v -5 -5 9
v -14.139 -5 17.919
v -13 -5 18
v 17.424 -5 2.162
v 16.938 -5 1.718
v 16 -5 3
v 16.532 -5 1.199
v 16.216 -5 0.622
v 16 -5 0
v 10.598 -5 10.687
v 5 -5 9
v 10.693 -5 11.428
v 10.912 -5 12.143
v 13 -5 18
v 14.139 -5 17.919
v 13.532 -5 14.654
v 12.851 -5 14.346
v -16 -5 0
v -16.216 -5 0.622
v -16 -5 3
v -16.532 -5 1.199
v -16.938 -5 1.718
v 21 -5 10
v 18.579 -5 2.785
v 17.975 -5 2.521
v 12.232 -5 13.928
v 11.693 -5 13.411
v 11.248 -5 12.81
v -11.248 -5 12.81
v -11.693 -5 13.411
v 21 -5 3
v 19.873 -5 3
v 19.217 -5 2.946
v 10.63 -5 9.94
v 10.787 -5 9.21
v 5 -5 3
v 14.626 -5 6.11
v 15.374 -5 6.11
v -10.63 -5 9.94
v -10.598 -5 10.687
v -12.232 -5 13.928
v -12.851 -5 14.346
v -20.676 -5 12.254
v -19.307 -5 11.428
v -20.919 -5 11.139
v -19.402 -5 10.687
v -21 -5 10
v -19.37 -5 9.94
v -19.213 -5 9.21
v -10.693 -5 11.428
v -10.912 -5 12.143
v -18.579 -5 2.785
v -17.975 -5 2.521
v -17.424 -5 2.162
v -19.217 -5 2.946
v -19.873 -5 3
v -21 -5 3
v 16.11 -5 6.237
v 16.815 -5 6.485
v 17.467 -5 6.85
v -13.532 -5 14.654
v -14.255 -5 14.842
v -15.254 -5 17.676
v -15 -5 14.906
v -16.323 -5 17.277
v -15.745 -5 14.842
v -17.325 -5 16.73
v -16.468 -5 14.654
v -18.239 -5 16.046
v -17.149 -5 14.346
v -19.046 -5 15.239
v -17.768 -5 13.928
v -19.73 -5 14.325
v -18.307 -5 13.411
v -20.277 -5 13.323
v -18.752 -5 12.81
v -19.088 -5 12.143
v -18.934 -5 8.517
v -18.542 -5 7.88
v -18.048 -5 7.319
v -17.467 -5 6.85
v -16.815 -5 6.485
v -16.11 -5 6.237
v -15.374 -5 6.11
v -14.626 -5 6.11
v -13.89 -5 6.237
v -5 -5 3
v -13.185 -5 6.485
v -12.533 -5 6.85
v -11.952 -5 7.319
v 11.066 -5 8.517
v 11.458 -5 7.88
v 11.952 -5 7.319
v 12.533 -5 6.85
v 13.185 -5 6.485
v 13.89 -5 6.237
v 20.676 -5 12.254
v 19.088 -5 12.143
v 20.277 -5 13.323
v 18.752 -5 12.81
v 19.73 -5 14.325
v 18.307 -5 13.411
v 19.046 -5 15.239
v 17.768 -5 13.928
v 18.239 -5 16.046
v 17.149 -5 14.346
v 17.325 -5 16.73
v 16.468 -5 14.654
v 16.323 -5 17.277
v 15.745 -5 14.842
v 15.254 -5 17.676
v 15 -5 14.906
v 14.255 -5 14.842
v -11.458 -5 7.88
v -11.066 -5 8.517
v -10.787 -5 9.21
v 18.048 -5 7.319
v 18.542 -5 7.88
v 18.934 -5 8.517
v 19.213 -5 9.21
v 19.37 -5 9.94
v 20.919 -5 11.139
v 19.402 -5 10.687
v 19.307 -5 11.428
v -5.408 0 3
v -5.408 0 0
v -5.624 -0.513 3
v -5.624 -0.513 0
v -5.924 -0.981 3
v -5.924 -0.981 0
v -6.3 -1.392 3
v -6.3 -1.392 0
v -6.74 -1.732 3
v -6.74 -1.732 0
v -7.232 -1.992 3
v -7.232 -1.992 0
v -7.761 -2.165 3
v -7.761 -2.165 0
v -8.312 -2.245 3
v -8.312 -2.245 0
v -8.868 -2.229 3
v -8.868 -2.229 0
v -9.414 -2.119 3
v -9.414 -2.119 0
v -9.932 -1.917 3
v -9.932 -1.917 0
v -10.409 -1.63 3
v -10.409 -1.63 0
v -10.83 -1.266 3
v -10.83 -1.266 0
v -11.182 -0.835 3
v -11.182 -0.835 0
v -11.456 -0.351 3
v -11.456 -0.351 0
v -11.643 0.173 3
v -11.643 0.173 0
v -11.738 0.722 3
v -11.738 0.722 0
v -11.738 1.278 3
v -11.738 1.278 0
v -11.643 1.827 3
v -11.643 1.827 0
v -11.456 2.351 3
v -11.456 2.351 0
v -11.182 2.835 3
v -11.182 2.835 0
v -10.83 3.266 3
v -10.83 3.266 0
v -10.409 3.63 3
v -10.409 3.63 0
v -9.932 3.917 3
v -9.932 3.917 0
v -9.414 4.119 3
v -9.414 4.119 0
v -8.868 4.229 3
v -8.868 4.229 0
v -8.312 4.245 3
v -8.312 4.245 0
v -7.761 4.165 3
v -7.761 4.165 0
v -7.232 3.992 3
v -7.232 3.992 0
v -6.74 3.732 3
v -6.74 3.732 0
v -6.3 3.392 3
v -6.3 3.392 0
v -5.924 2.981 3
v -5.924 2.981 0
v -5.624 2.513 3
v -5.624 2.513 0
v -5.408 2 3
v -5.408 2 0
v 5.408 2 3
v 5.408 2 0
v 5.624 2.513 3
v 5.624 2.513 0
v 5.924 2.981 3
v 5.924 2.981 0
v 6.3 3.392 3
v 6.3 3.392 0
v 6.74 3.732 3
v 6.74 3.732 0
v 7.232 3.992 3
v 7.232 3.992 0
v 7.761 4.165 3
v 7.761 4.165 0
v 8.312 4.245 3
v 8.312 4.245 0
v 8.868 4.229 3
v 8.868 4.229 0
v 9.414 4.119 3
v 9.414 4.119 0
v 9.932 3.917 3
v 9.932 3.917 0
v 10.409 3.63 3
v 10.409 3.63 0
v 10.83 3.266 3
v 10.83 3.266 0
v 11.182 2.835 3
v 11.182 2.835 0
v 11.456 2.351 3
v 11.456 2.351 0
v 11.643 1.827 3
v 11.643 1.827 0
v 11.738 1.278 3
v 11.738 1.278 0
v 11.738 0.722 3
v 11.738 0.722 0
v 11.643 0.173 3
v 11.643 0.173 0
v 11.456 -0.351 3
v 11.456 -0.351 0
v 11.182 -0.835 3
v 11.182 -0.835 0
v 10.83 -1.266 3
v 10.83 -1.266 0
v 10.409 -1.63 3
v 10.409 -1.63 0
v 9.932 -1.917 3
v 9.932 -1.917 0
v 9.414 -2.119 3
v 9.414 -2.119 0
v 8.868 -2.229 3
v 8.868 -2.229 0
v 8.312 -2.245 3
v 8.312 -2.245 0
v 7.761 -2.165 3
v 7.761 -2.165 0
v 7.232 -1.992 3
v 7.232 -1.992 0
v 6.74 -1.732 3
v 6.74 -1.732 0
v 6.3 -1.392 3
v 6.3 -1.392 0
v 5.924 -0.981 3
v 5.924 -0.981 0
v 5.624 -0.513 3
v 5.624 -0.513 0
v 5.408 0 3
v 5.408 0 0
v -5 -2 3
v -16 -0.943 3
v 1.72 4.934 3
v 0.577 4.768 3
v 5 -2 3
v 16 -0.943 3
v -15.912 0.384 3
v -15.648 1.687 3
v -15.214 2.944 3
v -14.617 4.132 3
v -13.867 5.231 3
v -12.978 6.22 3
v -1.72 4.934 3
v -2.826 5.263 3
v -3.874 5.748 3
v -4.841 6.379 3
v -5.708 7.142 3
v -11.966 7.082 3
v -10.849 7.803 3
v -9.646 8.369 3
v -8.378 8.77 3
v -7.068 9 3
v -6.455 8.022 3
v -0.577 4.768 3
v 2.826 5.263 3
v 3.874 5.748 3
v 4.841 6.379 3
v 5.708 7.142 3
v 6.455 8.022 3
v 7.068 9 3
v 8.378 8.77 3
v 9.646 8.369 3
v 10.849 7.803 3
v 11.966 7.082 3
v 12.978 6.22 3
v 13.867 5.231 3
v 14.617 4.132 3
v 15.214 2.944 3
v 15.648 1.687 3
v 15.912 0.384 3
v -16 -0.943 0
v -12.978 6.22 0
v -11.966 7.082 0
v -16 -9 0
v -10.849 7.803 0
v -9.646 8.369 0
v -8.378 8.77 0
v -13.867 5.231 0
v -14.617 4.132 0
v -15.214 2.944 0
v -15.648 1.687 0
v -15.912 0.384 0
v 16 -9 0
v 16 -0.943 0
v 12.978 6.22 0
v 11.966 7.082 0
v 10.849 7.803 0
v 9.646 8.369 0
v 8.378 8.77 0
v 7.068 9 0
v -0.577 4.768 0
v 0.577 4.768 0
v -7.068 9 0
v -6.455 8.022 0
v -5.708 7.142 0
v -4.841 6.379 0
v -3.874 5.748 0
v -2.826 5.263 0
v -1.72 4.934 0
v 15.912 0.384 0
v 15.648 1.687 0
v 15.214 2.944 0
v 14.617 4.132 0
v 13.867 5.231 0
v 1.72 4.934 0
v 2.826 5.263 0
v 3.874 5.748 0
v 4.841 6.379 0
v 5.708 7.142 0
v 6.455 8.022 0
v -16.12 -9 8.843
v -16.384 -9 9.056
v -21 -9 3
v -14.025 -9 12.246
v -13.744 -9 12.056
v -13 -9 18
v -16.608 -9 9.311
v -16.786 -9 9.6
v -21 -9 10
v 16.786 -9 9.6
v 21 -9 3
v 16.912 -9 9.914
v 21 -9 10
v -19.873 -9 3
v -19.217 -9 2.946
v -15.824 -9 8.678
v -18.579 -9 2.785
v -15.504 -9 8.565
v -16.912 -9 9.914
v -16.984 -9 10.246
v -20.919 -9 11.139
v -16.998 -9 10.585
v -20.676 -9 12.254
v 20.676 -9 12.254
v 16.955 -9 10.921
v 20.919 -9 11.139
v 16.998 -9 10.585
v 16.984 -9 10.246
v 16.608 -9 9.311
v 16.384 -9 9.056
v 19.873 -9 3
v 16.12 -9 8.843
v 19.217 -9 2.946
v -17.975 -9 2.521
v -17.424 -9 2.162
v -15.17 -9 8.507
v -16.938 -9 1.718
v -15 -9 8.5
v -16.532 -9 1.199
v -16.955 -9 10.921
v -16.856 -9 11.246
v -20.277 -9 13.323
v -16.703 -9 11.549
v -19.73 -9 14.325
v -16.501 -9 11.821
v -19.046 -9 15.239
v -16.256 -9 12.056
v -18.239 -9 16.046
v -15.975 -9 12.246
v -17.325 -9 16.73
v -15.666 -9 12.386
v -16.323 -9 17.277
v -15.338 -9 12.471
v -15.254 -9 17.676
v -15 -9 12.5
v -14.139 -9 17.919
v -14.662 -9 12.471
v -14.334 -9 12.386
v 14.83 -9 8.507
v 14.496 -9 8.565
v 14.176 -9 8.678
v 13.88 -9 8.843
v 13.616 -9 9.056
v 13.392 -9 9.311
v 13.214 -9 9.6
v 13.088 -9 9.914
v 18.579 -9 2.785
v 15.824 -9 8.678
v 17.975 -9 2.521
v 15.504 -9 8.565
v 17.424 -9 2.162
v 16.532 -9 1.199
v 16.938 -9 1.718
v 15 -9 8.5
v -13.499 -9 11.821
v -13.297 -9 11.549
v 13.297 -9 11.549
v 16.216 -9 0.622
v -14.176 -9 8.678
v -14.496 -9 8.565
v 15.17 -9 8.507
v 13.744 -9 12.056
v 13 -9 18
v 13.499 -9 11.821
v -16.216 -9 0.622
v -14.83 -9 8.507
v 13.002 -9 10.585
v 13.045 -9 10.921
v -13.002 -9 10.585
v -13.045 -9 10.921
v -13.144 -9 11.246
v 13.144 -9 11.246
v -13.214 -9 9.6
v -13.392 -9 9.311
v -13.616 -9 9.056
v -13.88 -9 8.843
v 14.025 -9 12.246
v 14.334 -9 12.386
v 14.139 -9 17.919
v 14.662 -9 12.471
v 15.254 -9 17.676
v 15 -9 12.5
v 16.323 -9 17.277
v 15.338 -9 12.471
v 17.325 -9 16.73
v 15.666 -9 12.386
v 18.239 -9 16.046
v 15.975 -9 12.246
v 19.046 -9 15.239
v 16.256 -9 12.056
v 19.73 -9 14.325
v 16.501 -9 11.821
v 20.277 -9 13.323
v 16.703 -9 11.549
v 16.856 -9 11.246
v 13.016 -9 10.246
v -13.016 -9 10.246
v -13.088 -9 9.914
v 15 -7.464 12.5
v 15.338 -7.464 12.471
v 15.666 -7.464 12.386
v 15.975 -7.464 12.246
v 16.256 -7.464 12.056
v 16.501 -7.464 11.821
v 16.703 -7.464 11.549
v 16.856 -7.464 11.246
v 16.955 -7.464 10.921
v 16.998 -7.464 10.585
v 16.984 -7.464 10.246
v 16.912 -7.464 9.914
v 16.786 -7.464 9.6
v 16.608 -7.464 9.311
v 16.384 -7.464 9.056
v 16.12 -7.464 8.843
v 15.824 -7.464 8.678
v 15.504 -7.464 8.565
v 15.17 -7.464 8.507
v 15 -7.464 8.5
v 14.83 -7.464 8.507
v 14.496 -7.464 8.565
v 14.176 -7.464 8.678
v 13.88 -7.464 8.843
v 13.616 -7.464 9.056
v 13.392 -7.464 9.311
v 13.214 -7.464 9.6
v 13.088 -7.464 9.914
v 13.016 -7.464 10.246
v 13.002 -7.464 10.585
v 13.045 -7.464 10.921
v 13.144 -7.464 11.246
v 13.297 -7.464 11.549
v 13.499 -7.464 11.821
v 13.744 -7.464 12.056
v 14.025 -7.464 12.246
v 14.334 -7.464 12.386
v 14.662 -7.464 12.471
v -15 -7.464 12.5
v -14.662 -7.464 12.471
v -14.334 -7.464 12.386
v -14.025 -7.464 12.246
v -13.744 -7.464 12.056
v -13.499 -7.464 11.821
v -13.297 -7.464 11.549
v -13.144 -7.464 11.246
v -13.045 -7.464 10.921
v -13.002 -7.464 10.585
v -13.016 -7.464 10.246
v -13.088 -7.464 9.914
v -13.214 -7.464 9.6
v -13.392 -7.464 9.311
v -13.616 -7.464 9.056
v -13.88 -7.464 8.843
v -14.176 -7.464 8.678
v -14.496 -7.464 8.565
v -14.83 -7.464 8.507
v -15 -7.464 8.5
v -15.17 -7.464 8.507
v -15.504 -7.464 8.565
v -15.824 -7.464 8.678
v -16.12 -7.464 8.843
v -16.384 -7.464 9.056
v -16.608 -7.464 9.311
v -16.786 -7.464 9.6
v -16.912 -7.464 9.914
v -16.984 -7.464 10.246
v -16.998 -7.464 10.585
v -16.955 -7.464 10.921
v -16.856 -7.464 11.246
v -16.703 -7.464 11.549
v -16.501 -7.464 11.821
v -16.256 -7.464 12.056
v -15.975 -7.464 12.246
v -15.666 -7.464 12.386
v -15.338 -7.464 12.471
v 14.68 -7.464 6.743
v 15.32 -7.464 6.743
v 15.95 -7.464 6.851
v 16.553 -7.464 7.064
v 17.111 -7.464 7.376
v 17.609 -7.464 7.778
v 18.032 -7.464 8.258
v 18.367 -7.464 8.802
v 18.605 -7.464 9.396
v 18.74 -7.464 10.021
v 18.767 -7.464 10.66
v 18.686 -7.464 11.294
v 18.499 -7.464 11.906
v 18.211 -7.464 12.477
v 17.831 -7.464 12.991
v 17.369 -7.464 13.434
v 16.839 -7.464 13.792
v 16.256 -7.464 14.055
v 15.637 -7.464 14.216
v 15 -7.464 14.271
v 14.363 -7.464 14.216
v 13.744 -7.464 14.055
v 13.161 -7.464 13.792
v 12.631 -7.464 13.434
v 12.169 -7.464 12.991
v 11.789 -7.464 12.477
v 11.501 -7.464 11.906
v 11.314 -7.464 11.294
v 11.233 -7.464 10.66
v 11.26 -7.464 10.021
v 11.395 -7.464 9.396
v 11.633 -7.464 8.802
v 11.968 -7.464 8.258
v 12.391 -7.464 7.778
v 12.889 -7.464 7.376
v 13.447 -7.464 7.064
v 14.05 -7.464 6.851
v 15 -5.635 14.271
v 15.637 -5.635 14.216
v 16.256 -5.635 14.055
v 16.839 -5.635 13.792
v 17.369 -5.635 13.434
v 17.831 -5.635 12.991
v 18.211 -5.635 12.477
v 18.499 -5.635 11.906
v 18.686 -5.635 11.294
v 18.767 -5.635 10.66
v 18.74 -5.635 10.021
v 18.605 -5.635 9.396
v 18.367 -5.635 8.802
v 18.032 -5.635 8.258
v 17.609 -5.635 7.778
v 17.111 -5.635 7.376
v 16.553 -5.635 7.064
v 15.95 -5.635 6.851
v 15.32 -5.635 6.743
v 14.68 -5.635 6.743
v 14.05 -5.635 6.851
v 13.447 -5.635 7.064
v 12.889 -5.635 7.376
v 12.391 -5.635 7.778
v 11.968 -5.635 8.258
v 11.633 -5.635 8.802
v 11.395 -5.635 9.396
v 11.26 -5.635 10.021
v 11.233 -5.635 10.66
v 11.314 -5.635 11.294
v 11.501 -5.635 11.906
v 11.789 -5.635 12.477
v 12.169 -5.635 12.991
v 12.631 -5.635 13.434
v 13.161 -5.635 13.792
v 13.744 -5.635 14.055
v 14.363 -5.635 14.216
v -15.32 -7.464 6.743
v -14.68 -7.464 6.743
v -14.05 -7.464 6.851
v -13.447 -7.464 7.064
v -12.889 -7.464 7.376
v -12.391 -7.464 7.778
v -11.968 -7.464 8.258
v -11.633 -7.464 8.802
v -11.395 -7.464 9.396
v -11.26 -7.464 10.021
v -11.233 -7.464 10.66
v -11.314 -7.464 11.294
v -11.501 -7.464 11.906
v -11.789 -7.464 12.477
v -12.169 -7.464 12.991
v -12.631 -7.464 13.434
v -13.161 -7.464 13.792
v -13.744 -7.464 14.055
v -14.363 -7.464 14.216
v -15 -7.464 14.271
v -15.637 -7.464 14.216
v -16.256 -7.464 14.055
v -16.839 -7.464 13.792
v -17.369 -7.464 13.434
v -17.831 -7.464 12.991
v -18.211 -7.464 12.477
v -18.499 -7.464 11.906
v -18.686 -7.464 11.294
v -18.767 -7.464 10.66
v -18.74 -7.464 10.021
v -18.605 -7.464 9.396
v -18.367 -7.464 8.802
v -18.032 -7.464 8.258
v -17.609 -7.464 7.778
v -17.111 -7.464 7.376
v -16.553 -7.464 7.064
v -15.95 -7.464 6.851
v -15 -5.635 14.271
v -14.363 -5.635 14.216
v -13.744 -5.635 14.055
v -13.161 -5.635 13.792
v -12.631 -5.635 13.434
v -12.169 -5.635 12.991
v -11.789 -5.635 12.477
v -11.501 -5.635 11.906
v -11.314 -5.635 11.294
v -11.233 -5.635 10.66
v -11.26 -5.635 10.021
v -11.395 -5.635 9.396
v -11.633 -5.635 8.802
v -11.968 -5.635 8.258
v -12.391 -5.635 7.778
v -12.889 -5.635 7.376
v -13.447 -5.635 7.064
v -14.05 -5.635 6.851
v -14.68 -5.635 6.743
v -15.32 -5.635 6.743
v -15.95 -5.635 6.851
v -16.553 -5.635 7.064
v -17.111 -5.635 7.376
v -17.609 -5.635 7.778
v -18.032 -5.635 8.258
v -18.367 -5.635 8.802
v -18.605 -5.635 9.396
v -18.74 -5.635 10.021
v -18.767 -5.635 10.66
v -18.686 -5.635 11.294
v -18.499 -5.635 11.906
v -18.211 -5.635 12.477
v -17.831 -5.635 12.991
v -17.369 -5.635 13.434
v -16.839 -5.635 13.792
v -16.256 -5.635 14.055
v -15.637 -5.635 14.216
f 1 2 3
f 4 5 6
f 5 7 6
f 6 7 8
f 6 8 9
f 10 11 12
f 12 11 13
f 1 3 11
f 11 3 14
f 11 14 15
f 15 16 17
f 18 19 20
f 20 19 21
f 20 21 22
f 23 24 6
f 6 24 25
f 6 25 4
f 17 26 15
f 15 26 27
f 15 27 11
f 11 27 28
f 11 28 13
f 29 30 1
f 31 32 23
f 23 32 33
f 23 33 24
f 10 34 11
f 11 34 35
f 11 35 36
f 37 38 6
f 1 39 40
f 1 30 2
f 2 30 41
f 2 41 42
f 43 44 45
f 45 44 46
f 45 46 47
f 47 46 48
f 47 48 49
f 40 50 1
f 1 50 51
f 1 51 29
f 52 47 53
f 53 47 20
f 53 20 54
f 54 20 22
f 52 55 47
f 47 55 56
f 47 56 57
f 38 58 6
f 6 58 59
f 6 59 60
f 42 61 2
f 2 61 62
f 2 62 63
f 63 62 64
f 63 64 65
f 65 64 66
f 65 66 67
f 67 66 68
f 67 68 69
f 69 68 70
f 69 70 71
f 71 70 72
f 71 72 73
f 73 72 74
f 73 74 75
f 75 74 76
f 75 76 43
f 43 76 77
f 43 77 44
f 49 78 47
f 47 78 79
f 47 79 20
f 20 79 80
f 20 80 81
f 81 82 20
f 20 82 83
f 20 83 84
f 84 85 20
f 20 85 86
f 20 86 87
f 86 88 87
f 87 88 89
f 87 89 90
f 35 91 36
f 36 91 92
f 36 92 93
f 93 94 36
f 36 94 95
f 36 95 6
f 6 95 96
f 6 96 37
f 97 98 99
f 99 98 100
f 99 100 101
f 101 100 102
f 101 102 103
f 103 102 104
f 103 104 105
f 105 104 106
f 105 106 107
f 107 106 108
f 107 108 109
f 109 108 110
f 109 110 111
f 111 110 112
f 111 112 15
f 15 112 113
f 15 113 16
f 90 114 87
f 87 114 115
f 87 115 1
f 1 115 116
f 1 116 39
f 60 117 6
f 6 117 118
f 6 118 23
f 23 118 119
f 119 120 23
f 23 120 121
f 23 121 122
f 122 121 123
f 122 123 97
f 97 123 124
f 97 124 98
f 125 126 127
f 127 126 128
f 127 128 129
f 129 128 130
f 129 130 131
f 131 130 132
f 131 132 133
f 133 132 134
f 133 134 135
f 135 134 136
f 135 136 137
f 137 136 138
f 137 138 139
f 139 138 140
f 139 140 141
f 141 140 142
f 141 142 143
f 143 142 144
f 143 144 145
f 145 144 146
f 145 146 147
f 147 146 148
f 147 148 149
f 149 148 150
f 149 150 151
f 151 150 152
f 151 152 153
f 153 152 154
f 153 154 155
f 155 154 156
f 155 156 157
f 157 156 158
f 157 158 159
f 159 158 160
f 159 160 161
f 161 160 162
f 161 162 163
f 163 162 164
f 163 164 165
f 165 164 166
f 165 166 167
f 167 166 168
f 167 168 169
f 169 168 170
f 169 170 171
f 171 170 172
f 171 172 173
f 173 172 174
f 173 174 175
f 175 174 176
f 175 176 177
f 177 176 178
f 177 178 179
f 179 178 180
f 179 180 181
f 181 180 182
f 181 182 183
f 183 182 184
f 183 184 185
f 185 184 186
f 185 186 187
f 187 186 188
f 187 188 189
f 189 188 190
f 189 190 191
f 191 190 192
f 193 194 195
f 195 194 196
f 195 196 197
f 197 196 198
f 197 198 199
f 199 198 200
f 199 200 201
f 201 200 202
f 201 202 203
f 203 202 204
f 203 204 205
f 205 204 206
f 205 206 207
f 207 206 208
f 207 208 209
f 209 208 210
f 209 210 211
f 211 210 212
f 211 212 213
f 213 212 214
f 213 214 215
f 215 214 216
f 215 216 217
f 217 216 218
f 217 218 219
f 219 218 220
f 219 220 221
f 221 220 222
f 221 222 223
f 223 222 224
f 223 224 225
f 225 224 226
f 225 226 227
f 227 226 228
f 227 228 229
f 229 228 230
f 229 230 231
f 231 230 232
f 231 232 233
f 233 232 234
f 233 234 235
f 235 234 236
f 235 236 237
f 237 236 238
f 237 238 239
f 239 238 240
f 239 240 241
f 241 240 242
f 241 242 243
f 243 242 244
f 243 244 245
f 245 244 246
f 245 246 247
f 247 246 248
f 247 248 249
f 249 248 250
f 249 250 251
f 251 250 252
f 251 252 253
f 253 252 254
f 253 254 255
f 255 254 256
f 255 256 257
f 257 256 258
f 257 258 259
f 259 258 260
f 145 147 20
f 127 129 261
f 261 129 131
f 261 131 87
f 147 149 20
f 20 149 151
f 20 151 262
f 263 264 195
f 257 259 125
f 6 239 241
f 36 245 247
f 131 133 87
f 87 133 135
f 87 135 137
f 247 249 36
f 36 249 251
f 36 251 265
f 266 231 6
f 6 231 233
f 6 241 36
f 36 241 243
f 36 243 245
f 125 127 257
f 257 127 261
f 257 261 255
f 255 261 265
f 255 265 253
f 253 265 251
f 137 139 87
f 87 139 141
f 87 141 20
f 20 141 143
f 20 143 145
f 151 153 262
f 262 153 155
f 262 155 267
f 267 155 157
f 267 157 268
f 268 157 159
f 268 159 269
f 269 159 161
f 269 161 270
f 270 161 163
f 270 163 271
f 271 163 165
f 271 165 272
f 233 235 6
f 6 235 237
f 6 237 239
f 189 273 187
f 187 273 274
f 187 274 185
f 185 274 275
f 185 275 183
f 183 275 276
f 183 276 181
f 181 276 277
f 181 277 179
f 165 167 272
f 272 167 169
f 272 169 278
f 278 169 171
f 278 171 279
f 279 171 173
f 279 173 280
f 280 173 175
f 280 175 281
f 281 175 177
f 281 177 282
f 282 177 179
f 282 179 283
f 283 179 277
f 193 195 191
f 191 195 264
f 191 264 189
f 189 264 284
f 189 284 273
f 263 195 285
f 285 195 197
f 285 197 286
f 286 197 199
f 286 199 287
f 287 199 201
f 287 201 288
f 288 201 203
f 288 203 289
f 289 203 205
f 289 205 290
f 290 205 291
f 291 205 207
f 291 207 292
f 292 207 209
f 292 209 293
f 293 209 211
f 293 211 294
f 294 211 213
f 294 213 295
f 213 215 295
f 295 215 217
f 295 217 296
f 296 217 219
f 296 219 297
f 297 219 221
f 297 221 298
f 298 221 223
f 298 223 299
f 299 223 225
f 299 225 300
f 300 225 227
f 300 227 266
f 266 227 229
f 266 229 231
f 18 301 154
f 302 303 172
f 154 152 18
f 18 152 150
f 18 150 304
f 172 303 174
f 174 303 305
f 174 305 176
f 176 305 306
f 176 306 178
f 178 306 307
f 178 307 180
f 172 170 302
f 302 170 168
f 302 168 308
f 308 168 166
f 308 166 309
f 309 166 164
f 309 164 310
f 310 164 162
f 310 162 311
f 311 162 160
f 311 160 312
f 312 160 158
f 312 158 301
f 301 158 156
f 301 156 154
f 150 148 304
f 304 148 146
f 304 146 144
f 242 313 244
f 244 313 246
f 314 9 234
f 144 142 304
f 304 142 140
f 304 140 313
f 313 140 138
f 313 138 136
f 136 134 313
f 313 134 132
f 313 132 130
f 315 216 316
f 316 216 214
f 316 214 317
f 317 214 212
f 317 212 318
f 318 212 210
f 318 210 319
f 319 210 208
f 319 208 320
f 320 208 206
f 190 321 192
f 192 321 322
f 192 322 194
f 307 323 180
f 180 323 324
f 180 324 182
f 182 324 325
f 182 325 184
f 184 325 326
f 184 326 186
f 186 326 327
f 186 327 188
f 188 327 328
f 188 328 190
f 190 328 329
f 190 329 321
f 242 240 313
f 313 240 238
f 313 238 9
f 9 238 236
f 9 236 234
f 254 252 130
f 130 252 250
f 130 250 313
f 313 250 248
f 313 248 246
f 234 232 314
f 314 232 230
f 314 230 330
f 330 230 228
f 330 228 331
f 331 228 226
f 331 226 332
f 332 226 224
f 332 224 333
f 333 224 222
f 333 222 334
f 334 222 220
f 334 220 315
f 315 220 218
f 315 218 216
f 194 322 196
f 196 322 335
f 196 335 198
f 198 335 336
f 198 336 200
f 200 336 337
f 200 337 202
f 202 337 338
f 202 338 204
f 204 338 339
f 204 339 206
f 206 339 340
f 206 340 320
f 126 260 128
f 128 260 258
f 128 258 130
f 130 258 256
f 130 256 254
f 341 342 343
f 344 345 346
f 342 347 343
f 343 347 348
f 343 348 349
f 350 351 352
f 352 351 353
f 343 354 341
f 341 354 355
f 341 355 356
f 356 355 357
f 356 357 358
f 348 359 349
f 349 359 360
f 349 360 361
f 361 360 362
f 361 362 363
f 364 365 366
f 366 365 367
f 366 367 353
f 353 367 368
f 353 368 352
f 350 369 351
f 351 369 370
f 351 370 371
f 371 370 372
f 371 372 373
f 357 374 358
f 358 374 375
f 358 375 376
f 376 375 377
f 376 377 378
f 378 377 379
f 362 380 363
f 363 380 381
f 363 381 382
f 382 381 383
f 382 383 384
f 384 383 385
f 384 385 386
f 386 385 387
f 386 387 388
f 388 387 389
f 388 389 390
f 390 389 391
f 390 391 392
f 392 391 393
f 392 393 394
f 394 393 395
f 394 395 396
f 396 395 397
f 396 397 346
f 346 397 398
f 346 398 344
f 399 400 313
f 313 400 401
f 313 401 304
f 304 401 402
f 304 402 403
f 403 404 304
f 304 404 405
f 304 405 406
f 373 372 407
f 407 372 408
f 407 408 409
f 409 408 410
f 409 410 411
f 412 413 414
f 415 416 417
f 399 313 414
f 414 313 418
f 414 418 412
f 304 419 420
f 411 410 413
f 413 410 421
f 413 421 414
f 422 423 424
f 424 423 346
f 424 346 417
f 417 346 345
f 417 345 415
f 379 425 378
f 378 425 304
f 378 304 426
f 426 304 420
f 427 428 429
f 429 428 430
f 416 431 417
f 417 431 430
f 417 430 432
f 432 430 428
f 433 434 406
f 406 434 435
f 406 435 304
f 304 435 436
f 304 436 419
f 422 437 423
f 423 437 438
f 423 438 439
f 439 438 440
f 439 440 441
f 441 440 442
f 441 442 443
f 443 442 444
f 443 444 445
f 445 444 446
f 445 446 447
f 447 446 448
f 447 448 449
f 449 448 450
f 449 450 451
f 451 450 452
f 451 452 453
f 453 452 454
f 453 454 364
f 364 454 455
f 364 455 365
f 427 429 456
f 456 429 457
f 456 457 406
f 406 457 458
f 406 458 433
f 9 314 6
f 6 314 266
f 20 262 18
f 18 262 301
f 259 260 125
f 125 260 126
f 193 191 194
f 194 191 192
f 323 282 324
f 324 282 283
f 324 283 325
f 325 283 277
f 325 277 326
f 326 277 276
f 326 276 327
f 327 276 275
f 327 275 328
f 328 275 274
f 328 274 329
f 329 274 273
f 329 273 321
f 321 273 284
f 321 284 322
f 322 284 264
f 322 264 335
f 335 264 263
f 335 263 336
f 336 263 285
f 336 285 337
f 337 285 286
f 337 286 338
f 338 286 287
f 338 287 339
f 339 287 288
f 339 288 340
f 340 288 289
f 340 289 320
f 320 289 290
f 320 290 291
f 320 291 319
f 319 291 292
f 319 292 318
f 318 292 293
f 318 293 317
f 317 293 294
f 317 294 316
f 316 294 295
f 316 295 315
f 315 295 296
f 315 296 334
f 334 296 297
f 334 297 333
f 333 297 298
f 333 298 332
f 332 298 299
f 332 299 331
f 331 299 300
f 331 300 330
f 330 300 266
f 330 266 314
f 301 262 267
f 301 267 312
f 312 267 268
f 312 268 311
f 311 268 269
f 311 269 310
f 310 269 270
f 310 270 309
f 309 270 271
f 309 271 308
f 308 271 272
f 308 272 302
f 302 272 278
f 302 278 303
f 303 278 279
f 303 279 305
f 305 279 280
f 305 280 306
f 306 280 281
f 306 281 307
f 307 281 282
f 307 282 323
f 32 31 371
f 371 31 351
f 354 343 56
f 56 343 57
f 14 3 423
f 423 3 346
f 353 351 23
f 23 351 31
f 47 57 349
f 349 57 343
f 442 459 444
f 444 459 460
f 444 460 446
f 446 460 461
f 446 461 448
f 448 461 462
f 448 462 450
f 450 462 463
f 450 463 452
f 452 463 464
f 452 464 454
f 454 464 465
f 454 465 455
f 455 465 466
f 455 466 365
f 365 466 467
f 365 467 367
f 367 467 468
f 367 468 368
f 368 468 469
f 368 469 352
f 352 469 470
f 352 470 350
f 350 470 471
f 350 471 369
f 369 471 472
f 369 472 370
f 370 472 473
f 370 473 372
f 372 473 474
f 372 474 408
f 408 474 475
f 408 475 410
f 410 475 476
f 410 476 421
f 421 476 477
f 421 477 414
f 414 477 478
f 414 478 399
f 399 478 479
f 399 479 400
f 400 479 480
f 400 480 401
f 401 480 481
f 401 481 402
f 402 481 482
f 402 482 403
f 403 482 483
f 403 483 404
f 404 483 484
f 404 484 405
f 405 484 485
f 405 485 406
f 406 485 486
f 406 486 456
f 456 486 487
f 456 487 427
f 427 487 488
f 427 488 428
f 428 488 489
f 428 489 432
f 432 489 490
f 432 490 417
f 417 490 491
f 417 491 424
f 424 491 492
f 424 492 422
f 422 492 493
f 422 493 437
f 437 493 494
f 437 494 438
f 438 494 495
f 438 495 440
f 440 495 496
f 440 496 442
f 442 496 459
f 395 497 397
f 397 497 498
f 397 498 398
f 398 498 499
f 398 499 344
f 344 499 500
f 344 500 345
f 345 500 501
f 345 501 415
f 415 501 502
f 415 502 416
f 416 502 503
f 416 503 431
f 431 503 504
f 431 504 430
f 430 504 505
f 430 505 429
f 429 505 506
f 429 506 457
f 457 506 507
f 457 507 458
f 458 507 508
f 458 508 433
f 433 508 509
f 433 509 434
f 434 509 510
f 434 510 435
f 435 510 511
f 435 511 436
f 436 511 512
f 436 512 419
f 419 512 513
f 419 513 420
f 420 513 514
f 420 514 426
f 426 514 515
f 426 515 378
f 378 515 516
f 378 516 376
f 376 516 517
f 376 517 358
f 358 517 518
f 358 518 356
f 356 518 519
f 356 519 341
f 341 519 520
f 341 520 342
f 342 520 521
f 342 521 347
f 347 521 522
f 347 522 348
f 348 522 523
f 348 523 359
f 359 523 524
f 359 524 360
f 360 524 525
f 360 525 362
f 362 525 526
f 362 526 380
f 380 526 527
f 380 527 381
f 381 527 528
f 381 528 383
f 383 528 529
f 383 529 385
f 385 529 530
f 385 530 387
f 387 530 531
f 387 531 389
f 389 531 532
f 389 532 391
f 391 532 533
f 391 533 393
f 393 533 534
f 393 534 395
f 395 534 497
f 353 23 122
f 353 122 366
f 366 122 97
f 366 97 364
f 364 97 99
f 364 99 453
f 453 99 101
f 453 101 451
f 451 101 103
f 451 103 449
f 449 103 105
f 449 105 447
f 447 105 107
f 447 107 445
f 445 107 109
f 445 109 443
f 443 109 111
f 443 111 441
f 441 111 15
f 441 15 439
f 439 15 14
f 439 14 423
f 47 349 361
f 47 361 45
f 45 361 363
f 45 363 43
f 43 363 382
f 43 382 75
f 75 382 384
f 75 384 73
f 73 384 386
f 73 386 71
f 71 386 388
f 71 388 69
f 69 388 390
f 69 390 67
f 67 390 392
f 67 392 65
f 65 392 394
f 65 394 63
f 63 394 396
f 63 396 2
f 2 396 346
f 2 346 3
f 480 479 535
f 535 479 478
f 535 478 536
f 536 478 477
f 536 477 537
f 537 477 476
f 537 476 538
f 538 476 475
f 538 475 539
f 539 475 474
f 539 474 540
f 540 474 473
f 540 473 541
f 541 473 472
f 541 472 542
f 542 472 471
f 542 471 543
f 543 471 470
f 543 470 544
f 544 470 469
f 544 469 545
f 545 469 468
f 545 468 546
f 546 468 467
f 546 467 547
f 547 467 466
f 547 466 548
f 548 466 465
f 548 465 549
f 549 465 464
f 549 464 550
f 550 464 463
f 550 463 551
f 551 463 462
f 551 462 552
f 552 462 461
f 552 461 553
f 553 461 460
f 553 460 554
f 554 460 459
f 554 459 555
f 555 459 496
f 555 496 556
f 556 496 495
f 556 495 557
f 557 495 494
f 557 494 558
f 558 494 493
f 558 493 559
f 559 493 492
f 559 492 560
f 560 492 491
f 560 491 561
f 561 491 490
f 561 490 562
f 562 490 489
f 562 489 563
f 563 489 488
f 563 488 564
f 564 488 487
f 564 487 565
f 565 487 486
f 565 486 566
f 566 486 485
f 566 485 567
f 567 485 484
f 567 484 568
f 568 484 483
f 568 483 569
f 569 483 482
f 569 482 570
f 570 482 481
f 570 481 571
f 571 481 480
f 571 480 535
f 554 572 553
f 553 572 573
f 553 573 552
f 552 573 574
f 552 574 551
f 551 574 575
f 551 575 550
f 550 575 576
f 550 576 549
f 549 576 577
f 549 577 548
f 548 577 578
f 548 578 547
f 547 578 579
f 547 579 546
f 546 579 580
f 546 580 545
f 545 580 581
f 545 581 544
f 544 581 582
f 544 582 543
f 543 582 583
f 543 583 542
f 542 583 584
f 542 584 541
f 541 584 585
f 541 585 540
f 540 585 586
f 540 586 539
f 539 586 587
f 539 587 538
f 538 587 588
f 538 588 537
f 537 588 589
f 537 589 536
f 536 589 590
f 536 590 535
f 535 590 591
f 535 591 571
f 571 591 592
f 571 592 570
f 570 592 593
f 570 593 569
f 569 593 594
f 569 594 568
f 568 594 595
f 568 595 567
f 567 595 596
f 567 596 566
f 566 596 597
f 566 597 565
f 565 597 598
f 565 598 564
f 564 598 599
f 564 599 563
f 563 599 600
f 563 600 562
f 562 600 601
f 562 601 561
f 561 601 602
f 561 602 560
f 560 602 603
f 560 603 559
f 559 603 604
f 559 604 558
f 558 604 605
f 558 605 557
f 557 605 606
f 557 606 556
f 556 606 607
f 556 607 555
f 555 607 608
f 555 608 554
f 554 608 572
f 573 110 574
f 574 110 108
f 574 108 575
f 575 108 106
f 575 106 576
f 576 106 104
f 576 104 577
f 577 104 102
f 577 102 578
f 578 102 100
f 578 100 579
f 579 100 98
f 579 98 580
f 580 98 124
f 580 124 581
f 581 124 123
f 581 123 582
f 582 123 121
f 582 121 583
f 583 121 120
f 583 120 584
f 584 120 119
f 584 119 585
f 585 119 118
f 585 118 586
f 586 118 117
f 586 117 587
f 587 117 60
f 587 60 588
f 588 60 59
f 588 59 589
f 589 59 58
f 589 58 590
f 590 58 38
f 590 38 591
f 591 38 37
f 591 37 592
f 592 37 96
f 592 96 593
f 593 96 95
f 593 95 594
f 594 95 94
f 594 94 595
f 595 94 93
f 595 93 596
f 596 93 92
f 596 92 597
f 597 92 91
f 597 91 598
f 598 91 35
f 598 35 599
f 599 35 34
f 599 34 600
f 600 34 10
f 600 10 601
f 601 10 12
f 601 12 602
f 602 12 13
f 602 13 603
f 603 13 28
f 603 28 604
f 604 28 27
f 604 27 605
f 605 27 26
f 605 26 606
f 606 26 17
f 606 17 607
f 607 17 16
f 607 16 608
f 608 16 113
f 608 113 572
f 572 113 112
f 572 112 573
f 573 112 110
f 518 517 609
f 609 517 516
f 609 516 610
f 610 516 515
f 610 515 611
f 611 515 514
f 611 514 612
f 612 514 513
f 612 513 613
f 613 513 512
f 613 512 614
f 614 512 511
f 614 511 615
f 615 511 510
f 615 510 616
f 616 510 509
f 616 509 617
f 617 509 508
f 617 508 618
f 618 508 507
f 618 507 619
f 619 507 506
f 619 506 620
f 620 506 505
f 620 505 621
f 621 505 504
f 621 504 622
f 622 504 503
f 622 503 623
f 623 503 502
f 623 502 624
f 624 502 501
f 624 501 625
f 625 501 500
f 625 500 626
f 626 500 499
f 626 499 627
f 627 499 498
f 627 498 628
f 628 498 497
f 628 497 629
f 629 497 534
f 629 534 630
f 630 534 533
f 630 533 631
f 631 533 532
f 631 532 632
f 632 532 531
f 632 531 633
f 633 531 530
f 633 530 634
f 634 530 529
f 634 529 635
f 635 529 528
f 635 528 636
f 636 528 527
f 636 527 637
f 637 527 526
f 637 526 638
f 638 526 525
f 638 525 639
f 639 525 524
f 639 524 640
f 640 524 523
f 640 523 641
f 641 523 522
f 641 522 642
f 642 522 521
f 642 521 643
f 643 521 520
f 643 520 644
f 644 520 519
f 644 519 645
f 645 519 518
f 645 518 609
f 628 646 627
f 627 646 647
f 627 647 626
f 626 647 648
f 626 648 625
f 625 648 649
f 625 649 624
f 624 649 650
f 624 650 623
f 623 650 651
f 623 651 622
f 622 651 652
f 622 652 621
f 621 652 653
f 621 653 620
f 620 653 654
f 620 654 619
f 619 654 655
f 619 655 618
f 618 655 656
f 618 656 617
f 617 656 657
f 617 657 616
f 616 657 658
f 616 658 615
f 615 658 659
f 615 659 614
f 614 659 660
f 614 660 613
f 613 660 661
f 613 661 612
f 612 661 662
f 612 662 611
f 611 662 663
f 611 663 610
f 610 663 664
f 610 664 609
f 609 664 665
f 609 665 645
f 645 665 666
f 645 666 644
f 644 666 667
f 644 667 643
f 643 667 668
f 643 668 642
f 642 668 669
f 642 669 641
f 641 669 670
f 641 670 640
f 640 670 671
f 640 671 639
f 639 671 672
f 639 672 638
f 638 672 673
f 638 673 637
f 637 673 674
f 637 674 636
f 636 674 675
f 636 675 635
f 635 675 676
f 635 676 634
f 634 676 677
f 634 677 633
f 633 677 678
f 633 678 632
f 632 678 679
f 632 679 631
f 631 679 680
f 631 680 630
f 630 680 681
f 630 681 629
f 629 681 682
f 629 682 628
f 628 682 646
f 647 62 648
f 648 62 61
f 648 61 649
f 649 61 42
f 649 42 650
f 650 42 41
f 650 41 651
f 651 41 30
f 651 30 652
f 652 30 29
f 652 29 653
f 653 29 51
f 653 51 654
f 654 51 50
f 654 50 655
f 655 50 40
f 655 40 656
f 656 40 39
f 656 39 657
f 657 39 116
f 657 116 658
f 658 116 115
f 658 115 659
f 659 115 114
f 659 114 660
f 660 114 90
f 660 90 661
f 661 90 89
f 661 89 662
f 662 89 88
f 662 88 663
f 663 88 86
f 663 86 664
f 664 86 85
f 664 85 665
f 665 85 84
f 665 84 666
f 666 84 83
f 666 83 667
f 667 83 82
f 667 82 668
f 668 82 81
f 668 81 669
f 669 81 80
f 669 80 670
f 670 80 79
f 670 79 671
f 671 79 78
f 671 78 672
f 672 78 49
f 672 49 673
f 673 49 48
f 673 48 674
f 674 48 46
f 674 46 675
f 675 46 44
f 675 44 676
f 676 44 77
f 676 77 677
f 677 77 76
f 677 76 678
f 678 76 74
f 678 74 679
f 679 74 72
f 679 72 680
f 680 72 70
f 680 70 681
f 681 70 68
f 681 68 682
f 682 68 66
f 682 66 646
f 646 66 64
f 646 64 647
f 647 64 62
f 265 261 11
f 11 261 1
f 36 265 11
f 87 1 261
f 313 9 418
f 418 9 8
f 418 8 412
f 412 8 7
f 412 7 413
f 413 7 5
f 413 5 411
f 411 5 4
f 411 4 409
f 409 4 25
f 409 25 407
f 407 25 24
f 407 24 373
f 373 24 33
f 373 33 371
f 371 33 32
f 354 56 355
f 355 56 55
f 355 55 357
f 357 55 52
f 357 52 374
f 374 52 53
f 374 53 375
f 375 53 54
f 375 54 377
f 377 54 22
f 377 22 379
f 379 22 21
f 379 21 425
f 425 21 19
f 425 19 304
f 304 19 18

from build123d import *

# Parameters (mm, degrees)
CROQUIS1_W                                  = 16.000027591
CROQUIS1_H                                  = 18
CROQUIS1_R                                  = 3.25
SALIENTE_EXTRUIR1_DEPTH                     = 3
CROQUIS2_W                                  = 15
CROQUIS2_H                                  = 2
CORTAR_EXTRUIR1_DEPTH                       = 3
REDONDEO1_R                                 = 10
CROQUIS3_W                                  = 15
CROQUIS3_H                                  = 4
SALIENTE_EXTRUIR2_DEPTH                     = 21
CROQUIS4_R                                  = 2
CORTAR_EXTRUIR2_DEPTH                       = 32
REDONDEO2_R                                 = 8
REFRENTADO_PARA_TORNILLO_CON_CABEZA_2_COUNT = 2
REFRENTADO_PARA_TORNILLO_CON_CABEZA_2_PITCH = 30
NERVIO1_REACH                               = 31.086
CROQUIS6_WALL_W                             = 66.880362222
CROQUIS6_WALL_H                             = 10
REDONDEO3_R                                 = 4


with BuildPart() as part:
    # Croquis1 → Saliente-Extruir1 (new body)
    # profile 1 of 2: a face of its own
    with BuildSketch(Plane.XY):
        with Locations((-8.000013796, 0)):
            Rectangle(CROQUIS1_W, CROQUIS1_H)
        with Locations((-8.5, 1)):
            Circle(CROQUIS1_R, mode=Mode.SUBTRACT)
    # profile 2 of 2: a face of its own
    with BuildSketch(Plane.XY):
        with Locations((8.000013796, 0)):
            Rectangle(CROQUIS1_W, CROQUIS1_H)
        with Locations((8.5, 1)):
            Circle(CROQUIS1_R, mode=Mode.SUBTRACT)
    extrude(amount=SALIENTE_EXTRUIR1_DEPTH)

    # Croquis2 → Cortar-Extruir1 (cut)
    with BuildSketch(Plane.XY.offset(3)):
        with BuildLine():
            ThreePointArc((7.068057866, 9), (7.76351927, 10.816597123), (8, 12.747340124))
            ThreePointArc((8, 12.747340124), (-1.930743001, 20.510859395), (-7.068057866, 9))
            Line((-7.068057866, 9), (7.068057866, 9))
        make_face()
        with BuildLine():
            Line((7.068057866, 9), (-7.068057866, 9))
            ThreePointArc((-7.068057866, 9), (0, 4.747340124), (7.068057866, 9))
        make_face()
        with Locations((0, 1)):
            Rectangle(CROQUIS2_W, CROQUIS2_H)
    extrude(amount=-CORTAR_EXTRUIR1_DEPTH, mode=Mode.SUBTRACT)

    # Redondeo1
    # the kernel refuses this fillet: 10 mm, written as the material it takes off along each edge
    with BuildSketch(Plane(origin=(16.000027591, 9, -24.857004965), x_dir=(-1, 0, 0), z_dir=(0, 0, 1))) as redondeo1_piece_1:
        with BuildLine():
            CenterArc((10, 9.942801986), REDONDEO1_R, 180, 83.86894335)
            Line((0, 9.942801986), (-0.2, 9.942801986))
            Line((-0.2, 9.942801986), (-0.2, 0))
            Line((-0.2, 0), (0, -0.2))
            ThreePointArc((0, -0.2), (4.465984863, -0.2), (8.91060912, -0.19885604))
            Line((8.91060912, -0.19885604), (8.931969726, 0))
        make_face()
    extrude(amount=52.71400993, mode=Mode.SUBTRACT)
    with BuildSketch(Plane(origin=(-16.000027591, 9, -24.857004965), x_dir=(1, 0, 0), z_dir=(0, 0, 1))) as redondeo1_piece_2:
        with BuildLine():
            CenterArc((10, -9.942801986), REDONDEO1_R, 96.13105665, 83.86894335)
            Line((0, -9.942801986), (-0.2, -9.942801986))
            Line((-0.2, -9.942801986), (-0.2, 0))
            Line((-0.2, 0), (0, 0.2))
            ThreePointArc((0, 0.2), (4.465984863, 0.2), (8.91060912, 0.19885604))
            Line((8.91060912, 0.19885604), (8.931969726, 0))
        make_face()
    extrude(amount=52.71400993, mode=Mode.SUBTRACT)

    # Croquis3 → Saliente-Extruir2 (add, symmetric)
    with BuildSketch(Plane(origin=(0, 0, 0), x_dir=(0, 0, -1), z_dir=(1, 0, 0))):
        with Locations((-10.5, -7)):
            Rectangle(CROQUIS3_W, CROQUIS3_H)
    extrude(amount=SALIENTE_EXTRUIR2_DEPTH, both=True)

    # Croquis4 → Cortar-Extruir2 (cut)
    with BuildSketch(Plane(origin=(0, -5, 0), x_dir=(1, 0, 0), z_dir=(0, 1, 0))):
        with Locations(Location((-15, -10.5, 0), (0, 0, 270))):
            Circle(CROQUIS4_R)
        with Locations(Location((15, -10.5, 0), (0, 0, 90))):
            Circle(CROQUIS4_R)
    extrude(amount=-CORTAR_EXTRUIR2_DEPTH, mode=Mode.SUBTRACT)

    # Redondeo2
    redondeo2_edges = [part.edges().sort_by_distance(p)[0] for p in [
        (-21, -7, 18),
        (21, -7, 18),
    ]]
    fillet(redondeo2_edges, radius=REDONDEO2_R)

    # Croquis5 → Refrentado para tornillo con cabeza troncocónica de #61 (revolve, cut)
    with BuildSketch(Plane(origin=(-15, -5, 10.5), x_dir=(0, 0, 1), z_dir=(1, 0, 0))):
        Polygon((0, 0), (0, 4), (1.89865, 4), (1.89865, 2.4638), (3.77063, 2.4638), (3.77063, 0.635), (4.40563, 0), align=None)
    refrentado_para_tornillo_con_cabeza_tron = revolve(axis=Axis((-15, 1.35, 10.5), (0, -1, 0)), mode=Mode.SUBTRACT)

    # Refrentado para tornillo con cabeza  2: Refrentado para tornillo con cabeza troncocónica de #61 ×2
    with Locations(*[(i * REFRENTADO_PARA_TORNILLO_CON_CABEZA_2_PITCH, 0, 0) for i in range(1, REFRENTADO_PARA_TORNILLO_CON_CABEZA_2_COUNT)]):
        add(refrentado_para_tornillo_con_cabeza_tron, mode=Mode.SUBTRACT)

    # Croquis6 wall → Nervio1 (add, up to next)
    with BuildSketch(Plane(origin=(0, -3.5, 6), x_dir=(0, -0.4472135955, 0.894427191), z_dir=(0, -0.894427191, -0.4472135955)), mode=Mode.PRIVATE) as nervio1_sk1:
        Rectangle(CROQUIS6_WALL_W, CROQUIS6_WALL_H)
    nervio1_tool1 = extrude(nervio1_sk1.sketch, amount=NERVIO1_REACH, mode=Mode.PRIVATE) - part.part
    add(nervio1_tool1.solids().sort_by_distance((0, -3.5, 6))[0])

    # Redondeo3
    # the kernel refuses this fillet: 4 mm, written as the material it adds along each edge
    with BuildSketch(Plane(origin=(16.000027591, -9, 3), x_dir=(0, 0, -1), z_dir=(0, 1, 0))) as redondeo3_piece_1:
        with BuildLine():
            CenterArc((4, -3.872983346), REDONDEO3_R, 104.477512186, 75.522487814)
            Line((0, -3.872983346), (0, 0))
            Line((0, 0), (3, 0))
        make_face()
    extrude(amount=4)
    with BuildSketch(Plane(origin=(-16.000027591, -9, 3), x_dir=(-1, 0, 0), z_dir=(0, 1, 0))) as redondeo3_piece_2:
        with BuildLine():
            CenterArc((3.872983346, -4), REDONDEO3_R, 90, 75.522487814)
            Line((0, -3), (0, 0))
            Line((0, 0), (3.872983346, 0))
        make_face()
    extrude(amount=4)


solid = part.part
